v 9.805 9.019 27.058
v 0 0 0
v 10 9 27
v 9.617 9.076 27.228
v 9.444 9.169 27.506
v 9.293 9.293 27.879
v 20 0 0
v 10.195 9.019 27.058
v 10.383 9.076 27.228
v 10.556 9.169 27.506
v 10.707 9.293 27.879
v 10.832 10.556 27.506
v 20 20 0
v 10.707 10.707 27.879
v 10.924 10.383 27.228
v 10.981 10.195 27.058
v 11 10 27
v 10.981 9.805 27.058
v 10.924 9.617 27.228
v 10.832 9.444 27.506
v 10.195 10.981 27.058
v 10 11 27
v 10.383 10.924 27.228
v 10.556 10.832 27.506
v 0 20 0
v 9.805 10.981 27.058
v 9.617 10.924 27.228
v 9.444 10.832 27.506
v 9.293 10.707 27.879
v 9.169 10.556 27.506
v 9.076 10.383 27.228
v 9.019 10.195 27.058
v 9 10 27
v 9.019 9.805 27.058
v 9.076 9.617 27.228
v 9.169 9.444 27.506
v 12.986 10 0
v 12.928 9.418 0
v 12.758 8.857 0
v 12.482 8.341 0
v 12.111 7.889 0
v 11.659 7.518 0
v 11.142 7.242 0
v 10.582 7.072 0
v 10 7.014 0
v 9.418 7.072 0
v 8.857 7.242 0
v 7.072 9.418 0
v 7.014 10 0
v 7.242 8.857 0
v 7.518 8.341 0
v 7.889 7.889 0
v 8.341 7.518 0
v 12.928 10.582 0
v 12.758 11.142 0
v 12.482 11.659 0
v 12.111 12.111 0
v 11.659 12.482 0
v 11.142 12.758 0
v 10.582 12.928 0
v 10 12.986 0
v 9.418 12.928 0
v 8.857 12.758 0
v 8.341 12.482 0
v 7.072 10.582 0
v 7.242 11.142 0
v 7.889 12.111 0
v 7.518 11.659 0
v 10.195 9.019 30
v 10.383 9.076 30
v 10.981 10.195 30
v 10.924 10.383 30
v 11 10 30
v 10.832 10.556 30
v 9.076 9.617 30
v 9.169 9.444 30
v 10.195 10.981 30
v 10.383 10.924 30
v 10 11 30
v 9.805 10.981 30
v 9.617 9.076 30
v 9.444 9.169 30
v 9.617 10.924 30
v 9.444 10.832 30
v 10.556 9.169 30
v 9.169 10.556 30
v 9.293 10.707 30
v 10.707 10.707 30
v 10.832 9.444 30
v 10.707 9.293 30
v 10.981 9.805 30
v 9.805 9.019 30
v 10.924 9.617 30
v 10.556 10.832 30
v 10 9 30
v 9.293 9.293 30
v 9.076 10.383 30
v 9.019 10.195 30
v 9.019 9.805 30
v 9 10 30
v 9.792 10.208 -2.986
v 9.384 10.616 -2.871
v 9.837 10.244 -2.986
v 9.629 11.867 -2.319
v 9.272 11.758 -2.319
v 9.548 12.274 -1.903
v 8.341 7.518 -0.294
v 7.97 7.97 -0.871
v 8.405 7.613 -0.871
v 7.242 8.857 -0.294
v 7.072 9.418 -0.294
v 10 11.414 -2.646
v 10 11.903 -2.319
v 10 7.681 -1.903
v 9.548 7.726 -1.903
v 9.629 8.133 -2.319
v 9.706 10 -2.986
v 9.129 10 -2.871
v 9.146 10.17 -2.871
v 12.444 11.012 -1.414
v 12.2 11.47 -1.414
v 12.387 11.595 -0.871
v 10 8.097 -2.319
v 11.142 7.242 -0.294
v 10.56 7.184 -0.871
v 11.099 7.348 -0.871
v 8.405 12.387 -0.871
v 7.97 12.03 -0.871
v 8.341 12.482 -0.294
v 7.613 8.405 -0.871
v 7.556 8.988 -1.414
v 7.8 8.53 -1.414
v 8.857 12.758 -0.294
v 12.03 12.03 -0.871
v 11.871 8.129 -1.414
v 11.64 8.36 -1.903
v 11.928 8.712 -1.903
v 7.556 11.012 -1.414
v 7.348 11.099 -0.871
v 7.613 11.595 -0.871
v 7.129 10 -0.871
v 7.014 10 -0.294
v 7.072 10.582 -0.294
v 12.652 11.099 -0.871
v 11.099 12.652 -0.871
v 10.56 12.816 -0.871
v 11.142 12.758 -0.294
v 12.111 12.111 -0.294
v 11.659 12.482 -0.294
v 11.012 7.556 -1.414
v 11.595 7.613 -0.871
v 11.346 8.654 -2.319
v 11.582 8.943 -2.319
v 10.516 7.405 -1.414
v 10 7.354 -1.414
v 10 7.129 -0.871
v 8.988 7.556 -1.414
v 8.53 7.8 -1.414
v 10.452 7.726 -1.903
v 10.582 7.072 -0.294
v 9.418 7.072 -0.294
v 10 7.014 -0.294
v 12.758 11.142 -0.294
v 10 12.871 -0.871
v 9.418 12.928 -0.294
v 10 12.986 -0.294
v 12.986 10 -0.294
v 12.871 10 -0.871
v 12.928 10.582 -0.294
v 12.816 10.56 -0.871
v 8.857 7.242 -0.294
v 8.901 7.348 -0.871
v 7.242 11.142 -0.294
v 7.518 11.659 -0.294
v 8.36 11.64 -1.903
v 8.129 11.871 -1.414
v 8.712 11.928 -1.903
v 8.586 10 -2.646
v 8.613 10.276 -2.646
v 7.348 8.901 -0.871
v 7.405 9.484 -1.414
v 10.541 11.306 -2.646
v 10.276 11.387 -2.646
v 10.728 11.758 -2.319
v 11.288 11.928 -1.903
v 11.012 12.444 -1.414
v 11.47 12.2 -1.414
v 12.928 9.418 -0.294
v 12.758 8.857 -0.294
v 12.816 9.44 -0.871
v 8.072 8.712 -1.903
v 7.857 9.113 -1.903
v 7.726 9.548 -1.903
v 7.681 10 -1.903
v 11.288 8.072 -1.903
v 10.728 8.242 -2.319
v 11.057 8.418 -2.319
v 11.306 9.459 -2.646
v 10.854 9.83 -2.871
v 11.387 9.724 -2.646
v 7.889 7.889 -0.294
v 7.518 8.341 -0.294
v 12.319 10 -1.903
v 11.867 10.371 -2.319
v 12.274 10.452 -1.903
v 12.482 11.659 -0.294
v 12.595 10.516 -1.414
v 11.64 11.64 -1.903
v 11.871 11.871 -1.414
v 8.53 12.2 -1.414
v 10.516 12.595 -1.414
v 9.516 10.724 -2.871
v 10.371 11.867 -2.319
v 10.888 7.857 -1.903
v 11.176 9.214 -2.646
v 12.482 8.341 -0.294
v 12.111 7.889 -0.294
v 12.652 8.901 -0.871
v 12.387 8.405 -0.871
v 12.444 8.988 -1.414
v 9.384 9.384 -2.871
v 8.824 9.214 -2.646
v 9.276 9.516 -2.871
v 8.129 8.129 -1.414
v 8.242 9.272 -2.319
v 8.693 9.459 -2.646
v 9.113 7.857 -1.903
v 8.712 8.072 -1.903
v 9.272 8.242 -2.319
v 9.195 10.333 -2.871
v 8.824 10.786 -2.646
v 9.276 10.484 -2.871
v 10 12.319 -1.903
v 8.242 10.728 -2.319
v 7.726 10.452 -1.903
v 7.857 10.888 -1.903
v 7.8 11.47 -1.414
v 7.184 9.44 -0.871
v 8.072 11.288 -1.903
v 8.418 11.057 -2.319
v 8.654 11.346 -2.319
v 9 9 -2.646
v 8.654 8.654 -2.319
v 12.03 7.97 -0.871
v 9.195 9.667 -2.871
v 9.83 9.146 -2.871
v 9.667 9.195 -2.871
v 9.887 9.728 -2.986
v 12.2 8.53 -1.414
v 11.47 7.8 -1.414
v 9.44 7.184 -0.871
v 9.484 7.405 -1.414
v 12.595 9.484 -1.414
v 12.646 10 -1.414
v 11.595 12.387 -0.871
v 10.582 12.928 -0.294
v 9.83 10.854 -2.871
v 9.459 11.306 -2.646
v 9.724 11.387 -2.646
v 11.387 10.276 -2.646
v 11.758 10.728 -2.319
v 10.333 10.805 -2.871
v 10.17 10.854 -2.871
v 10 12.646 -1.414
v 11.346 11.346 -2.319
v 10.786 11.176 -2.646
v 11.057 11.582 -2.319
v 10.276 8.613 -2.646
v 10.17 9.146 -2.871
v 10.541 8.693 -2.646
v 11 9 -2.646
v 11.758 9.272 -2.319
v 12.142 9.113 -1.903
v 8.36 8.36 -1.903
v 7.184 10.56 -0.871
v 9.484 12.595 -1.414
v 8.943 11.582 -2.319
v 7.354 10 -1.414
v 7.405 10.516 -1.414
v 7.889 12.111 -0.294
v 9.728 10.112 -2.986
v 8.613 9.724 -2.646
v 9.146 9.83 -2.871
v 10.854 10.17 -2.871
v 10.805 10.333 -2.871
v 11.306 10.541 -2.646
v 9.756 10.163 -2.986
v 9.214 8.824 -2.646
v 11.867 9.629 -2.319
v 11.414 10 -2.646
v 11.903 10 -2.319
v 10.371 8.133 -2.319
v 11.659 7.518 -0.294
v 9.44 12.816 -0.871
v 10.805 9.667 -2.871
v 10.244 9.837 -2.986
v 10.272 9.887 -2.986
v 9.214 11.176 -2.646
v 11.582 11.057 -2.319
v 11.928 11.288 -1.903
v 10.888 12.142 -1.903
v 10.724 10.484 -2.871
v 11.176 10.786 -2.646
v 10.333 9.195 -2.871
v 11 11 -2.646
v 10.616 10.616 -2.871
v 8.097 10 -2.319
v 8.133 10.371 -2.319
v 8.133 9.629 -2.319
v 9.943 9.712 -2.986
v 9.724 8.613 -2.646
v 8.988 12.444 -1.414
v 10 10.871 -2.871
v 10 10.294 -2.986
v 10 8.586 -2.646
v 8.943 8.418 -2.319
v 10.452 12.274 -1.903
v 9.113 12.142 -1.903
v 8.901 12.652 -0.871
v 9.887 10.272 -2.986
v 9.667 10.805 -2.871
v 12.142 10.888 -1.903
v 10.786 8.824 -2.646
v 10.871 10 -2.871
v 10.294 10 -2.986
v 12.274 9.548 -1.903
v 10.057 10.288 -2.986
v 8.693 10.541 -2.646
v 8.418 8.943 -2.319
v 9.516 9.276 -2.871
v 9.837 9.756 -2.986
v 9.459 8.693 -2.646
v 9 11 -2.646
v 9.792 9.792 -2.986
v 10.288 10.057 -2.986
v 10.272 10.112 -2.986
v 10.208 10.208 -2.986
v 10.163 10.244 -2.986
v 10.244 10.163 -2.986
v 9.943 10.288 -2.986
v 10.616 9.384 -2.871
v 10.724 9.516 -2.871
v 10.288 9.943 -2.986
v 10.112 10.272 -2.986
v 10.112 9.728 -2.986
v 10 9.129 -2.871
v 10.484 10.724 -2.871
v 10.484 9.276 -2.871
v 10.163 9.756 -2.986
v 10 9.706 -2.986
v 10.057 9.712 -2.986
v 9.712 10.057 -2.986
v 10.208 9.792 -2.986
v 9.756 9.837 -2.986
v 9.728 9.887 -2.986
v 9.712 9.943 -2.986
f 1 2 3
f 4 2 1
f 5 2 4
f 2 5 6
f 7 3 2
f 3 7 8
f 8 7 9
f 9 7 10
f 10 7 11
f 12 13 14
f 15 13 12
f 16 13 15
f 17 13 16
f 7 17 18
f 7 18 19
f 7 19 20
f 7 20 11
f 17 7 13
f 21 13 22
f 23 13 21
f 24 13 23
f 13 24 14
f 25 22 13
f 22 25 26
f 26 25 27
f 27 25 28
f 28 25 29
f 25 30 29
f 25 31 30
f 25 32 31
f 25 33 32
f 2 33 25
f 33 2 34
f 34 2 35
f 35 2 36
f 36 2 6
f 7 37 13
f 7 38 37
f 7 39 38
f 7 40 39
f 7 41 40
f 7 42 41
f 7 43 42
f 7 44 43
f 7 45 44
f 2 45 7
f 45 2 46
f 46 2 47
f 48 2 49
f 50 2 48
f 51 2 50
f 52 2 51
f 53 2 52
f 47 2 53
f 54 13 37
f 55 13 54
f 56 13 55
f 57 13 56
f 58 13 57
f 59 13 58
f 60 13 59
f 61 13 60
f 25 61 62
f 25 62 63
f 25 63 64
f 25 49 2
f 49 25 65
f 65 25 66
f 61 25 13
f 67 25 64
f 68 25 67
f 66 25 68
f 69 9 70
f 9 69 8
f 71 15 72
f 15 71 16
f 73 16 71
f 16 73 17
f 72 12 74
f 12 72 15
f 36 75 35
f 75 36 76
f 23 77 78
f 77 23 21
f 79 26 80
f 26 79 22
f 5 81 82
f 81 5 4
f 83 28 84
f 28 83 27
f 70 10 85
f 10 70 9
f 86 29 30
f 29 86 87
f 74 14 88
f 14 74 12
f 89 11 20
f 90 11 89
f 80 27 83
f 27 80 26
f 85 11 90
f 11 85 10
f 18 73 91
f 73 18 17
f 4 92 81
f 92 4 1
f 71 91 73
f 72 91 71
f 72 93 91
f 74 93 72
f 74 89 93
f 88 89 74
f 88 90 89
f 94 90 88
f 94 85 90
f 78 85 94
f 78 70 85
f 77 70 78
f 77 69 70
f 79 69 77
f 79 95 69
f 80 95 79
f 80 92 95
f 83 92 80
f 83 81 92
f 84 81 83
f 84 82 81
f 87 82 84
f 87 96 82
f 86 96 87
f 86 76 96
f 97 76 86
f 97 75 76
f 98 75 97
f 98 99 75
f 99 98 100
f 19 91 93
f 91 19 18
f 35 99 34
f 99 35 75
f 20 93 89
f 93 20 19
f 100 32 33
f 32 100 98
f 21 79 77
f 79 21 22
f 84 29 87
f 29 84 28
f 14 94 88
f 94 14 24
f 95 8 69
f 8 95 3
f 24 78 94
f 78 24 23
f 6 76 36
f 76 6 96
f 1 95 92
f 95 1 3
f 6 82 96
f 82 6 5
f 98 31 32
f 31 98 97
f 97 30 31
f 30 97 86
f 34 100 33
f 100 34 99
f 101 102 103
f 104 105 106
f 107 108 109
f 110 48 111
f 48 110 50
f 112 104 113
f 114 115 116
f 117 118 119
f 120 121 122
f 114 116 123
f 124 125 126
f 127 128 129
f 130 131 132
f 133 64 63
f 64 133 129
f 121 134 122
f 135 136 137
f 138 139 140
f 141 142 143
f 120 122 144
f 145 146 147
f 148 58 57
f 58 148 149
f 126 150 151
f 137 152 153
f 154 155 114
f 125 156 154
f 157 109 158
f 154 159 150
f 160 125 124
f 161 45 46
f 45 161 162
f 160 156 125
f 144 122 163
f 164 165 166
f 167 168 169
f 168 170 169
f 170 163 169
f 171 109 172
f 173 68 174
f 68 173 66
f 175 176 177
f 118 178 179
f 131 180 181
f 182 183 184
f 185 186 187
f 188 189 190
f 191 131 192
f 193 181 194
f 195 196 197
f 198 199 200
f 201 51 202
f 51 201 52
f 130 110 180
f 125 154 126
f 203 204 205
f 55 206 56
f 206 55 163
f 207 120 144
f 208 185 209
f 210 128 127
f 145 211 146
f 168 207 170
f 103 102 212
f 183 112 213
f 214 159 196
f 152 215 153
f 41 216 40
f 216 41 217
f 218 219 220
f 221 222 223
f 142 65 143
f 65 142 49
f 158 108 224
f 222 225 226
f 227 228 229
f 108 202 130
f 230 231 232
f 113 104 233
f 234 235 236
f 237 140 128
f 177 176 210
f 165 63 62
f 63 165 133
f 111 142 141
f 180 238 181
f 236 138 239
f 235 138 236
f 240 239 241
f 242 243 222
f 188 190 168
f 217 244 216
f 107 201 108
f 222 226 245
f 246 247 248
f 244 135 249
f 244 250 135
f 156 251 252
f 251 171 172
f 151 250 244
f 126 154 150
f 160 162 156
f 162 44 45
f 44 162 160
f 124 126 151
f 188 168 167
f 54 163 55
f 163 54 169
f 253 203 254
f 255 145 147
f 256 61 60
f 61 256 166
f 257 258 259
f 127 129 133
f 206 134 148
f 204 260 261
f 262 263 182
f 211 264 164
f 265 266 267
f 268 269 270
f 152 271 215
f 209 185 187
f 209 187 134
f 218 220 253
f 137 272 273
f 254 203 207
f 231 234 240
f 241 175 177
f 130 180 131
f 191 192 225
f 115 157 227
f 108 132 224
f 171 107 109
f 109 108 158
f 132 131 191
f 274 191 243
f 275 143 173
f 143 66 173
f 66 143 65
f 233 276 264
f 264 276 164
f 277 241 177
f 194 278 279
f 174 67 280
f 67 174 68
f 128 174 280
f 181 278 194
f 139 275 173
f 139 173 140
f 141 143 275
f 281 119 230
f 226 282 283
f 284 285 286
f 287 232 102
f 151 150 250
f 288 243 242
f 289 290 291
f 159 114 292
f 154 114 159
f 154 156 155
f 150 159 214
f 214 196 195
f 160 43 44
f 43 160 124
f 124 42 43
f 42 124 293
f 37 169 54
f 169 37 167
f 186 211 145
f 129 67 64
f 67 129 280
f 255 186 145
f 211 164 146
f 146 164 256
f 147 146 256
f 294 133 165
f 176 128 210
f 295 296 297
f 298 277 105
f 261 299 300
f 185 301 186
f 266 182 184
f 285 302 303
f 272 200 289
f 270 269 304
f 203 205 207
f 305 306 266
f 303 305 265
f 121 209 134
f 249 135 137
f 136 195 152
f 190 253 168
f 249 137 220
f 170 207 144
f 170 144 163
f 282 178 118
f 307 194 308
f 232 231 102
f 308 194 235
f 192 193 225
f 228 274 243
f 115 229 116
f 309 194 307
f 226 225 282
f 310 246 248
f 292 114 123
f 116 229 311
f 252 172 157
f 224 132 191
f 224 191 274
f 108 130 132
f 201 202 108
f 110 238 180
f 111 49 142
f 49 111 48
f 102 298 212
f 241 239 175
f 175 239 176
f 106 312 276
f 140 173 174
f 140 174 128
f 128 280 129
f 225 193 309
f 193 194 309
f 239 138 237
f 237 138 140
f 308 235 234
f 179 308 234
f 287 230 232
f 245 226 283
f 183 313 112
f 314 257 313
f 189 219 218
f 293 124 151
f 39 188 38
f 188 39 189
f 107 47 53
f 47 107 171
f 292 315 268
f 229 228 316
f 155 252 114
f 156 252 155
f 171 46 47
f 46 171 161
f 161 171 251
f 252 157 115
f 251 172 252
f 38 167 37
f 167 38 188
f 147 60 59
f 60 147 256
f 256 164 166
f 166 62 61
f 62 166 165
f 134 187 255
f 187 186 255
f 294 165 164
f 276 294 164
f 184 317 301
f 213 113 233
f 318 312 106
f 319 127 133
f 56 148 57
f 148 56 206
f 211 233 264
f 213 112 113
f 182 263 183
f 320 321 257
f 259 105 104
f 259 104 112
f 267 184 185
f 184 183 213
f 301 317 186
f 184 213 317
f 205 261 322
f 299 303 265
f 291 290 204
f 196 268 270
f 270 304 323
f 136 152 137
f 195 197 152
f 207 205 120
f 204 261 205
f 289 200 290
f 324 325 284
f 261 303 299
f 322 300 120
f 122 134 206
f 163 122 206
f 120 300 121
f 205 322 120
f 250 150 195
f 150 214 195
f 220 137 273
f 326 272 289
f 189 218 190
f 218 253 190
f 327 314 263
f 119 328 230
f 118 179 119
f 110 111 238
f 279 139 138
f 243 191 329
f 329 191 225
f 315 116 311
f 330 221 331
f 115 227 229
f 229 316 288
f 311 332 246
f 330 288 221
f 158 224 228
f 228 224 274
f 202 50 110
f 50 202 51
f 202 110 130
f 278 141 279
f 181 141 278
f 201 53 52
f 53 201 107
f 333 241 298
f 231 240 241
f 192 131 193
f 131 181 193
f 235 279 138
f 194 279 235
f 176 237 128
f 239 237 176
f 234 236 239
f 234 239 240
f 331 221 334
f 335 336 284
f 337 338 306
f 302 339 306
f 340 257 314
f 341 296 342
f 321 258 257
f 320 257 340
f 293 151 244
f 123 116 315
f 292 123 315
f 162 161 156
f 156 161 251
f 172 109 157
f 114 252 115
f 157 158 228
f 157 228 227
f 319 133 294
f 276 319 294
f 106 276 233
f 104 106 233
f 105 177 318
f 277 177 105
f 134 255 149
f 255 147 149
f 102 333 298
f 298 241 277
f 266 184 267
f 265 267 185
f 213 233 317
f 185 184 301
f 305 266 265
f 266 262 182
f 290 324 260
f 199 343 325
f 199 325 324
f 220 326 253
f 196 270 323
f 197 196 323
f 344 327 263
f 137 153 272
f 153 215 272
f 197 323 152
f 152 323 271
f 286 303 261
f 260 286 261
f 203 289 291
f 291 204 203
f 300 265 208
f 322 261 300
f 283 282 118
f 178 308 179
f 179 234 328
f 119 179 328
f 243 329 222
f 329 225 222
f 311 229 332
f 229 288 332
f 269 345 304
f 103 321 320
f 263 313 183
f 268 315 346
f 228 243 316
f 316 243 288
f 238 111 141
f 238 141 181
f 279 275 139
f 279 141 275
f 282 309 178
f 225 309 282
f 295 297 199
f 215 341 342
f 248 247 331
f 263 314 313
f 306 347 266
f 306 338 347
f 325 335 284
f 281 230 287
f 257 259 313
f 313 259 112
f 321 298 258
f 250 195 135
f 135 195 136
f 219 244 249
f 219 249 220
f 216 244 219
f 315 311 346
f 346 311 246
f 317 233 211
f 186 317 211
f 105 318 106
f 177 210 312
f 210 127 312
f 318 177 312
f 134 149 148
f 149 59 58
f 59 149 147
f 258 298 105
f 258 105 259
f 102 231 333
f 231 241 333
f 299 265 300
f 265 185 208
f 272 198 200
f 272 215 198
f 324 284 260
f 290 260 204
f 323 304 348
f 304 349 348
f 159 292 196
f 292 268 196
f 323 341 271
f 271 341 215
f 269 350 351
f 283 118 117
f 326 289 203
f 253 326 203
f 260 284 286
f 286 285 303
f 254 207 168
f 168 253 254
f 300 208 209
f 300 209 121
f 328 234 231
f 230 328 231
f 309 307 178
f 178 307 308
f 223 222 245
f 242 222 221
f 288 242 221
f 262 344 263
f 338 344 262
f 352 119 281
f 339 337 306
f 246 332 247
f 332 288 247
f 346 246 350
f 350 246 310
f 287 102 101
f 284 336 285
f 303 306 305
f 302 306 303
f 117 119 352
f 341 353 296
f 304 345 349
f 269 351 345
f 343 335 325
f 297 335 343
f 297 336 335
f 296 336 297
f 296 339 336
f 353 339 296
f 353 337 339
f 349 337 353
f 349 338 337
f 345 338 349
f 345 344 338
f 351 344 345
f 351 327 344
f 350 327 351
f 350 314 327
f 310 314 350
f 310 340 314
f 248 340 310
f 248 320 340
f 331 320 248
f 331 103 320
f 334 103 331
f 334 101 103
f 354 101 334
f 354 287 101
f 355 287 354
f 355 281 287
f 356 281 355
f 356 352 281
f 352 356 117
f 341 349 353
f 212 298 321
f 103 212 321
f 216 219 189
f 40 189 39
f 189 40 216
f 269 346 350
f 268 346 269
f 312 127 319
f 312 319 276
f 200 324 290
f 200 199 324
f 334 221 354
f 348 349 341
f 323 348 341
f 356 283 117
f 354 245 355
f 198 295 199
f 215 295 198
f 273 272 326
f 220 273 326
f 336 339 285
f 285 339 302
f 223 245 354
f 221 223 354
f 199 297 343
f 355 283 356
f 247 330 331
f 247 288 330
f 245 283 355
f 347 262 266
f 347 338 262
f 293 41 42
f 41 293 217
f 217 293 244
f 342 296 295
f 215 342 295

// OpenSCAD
$fn = 32;

// Metronome Base (Pyramidal)
module base() {
    polyhedron(
        points=[
            [0, 0, 0], [20, 0, 0], [20, 20, 0], [0, 20, 0], // bottom square
            [10, 10, 30]                                    // top apex
        ],
        faces=[
            [0, 1, 4], [1, 2, 4], [2, 3, 4], [3, 0, 4],     // sides
            [0, 3, 2, 1]                                    // bottom
        ]
    );
}

// Pendulum Arm (Vertical thin rod)
module arm() {
    translate([10, 10, 5])
    cylinder(h=25, r=1);
}

// Pendulum Weight (Sphere at the bottom)
module weight() {
    translate([10, 10, 0])
    sphere(r=3);
}

// Combining everything into one manifold
union() {
    base();
    arm();
    weight();
}
